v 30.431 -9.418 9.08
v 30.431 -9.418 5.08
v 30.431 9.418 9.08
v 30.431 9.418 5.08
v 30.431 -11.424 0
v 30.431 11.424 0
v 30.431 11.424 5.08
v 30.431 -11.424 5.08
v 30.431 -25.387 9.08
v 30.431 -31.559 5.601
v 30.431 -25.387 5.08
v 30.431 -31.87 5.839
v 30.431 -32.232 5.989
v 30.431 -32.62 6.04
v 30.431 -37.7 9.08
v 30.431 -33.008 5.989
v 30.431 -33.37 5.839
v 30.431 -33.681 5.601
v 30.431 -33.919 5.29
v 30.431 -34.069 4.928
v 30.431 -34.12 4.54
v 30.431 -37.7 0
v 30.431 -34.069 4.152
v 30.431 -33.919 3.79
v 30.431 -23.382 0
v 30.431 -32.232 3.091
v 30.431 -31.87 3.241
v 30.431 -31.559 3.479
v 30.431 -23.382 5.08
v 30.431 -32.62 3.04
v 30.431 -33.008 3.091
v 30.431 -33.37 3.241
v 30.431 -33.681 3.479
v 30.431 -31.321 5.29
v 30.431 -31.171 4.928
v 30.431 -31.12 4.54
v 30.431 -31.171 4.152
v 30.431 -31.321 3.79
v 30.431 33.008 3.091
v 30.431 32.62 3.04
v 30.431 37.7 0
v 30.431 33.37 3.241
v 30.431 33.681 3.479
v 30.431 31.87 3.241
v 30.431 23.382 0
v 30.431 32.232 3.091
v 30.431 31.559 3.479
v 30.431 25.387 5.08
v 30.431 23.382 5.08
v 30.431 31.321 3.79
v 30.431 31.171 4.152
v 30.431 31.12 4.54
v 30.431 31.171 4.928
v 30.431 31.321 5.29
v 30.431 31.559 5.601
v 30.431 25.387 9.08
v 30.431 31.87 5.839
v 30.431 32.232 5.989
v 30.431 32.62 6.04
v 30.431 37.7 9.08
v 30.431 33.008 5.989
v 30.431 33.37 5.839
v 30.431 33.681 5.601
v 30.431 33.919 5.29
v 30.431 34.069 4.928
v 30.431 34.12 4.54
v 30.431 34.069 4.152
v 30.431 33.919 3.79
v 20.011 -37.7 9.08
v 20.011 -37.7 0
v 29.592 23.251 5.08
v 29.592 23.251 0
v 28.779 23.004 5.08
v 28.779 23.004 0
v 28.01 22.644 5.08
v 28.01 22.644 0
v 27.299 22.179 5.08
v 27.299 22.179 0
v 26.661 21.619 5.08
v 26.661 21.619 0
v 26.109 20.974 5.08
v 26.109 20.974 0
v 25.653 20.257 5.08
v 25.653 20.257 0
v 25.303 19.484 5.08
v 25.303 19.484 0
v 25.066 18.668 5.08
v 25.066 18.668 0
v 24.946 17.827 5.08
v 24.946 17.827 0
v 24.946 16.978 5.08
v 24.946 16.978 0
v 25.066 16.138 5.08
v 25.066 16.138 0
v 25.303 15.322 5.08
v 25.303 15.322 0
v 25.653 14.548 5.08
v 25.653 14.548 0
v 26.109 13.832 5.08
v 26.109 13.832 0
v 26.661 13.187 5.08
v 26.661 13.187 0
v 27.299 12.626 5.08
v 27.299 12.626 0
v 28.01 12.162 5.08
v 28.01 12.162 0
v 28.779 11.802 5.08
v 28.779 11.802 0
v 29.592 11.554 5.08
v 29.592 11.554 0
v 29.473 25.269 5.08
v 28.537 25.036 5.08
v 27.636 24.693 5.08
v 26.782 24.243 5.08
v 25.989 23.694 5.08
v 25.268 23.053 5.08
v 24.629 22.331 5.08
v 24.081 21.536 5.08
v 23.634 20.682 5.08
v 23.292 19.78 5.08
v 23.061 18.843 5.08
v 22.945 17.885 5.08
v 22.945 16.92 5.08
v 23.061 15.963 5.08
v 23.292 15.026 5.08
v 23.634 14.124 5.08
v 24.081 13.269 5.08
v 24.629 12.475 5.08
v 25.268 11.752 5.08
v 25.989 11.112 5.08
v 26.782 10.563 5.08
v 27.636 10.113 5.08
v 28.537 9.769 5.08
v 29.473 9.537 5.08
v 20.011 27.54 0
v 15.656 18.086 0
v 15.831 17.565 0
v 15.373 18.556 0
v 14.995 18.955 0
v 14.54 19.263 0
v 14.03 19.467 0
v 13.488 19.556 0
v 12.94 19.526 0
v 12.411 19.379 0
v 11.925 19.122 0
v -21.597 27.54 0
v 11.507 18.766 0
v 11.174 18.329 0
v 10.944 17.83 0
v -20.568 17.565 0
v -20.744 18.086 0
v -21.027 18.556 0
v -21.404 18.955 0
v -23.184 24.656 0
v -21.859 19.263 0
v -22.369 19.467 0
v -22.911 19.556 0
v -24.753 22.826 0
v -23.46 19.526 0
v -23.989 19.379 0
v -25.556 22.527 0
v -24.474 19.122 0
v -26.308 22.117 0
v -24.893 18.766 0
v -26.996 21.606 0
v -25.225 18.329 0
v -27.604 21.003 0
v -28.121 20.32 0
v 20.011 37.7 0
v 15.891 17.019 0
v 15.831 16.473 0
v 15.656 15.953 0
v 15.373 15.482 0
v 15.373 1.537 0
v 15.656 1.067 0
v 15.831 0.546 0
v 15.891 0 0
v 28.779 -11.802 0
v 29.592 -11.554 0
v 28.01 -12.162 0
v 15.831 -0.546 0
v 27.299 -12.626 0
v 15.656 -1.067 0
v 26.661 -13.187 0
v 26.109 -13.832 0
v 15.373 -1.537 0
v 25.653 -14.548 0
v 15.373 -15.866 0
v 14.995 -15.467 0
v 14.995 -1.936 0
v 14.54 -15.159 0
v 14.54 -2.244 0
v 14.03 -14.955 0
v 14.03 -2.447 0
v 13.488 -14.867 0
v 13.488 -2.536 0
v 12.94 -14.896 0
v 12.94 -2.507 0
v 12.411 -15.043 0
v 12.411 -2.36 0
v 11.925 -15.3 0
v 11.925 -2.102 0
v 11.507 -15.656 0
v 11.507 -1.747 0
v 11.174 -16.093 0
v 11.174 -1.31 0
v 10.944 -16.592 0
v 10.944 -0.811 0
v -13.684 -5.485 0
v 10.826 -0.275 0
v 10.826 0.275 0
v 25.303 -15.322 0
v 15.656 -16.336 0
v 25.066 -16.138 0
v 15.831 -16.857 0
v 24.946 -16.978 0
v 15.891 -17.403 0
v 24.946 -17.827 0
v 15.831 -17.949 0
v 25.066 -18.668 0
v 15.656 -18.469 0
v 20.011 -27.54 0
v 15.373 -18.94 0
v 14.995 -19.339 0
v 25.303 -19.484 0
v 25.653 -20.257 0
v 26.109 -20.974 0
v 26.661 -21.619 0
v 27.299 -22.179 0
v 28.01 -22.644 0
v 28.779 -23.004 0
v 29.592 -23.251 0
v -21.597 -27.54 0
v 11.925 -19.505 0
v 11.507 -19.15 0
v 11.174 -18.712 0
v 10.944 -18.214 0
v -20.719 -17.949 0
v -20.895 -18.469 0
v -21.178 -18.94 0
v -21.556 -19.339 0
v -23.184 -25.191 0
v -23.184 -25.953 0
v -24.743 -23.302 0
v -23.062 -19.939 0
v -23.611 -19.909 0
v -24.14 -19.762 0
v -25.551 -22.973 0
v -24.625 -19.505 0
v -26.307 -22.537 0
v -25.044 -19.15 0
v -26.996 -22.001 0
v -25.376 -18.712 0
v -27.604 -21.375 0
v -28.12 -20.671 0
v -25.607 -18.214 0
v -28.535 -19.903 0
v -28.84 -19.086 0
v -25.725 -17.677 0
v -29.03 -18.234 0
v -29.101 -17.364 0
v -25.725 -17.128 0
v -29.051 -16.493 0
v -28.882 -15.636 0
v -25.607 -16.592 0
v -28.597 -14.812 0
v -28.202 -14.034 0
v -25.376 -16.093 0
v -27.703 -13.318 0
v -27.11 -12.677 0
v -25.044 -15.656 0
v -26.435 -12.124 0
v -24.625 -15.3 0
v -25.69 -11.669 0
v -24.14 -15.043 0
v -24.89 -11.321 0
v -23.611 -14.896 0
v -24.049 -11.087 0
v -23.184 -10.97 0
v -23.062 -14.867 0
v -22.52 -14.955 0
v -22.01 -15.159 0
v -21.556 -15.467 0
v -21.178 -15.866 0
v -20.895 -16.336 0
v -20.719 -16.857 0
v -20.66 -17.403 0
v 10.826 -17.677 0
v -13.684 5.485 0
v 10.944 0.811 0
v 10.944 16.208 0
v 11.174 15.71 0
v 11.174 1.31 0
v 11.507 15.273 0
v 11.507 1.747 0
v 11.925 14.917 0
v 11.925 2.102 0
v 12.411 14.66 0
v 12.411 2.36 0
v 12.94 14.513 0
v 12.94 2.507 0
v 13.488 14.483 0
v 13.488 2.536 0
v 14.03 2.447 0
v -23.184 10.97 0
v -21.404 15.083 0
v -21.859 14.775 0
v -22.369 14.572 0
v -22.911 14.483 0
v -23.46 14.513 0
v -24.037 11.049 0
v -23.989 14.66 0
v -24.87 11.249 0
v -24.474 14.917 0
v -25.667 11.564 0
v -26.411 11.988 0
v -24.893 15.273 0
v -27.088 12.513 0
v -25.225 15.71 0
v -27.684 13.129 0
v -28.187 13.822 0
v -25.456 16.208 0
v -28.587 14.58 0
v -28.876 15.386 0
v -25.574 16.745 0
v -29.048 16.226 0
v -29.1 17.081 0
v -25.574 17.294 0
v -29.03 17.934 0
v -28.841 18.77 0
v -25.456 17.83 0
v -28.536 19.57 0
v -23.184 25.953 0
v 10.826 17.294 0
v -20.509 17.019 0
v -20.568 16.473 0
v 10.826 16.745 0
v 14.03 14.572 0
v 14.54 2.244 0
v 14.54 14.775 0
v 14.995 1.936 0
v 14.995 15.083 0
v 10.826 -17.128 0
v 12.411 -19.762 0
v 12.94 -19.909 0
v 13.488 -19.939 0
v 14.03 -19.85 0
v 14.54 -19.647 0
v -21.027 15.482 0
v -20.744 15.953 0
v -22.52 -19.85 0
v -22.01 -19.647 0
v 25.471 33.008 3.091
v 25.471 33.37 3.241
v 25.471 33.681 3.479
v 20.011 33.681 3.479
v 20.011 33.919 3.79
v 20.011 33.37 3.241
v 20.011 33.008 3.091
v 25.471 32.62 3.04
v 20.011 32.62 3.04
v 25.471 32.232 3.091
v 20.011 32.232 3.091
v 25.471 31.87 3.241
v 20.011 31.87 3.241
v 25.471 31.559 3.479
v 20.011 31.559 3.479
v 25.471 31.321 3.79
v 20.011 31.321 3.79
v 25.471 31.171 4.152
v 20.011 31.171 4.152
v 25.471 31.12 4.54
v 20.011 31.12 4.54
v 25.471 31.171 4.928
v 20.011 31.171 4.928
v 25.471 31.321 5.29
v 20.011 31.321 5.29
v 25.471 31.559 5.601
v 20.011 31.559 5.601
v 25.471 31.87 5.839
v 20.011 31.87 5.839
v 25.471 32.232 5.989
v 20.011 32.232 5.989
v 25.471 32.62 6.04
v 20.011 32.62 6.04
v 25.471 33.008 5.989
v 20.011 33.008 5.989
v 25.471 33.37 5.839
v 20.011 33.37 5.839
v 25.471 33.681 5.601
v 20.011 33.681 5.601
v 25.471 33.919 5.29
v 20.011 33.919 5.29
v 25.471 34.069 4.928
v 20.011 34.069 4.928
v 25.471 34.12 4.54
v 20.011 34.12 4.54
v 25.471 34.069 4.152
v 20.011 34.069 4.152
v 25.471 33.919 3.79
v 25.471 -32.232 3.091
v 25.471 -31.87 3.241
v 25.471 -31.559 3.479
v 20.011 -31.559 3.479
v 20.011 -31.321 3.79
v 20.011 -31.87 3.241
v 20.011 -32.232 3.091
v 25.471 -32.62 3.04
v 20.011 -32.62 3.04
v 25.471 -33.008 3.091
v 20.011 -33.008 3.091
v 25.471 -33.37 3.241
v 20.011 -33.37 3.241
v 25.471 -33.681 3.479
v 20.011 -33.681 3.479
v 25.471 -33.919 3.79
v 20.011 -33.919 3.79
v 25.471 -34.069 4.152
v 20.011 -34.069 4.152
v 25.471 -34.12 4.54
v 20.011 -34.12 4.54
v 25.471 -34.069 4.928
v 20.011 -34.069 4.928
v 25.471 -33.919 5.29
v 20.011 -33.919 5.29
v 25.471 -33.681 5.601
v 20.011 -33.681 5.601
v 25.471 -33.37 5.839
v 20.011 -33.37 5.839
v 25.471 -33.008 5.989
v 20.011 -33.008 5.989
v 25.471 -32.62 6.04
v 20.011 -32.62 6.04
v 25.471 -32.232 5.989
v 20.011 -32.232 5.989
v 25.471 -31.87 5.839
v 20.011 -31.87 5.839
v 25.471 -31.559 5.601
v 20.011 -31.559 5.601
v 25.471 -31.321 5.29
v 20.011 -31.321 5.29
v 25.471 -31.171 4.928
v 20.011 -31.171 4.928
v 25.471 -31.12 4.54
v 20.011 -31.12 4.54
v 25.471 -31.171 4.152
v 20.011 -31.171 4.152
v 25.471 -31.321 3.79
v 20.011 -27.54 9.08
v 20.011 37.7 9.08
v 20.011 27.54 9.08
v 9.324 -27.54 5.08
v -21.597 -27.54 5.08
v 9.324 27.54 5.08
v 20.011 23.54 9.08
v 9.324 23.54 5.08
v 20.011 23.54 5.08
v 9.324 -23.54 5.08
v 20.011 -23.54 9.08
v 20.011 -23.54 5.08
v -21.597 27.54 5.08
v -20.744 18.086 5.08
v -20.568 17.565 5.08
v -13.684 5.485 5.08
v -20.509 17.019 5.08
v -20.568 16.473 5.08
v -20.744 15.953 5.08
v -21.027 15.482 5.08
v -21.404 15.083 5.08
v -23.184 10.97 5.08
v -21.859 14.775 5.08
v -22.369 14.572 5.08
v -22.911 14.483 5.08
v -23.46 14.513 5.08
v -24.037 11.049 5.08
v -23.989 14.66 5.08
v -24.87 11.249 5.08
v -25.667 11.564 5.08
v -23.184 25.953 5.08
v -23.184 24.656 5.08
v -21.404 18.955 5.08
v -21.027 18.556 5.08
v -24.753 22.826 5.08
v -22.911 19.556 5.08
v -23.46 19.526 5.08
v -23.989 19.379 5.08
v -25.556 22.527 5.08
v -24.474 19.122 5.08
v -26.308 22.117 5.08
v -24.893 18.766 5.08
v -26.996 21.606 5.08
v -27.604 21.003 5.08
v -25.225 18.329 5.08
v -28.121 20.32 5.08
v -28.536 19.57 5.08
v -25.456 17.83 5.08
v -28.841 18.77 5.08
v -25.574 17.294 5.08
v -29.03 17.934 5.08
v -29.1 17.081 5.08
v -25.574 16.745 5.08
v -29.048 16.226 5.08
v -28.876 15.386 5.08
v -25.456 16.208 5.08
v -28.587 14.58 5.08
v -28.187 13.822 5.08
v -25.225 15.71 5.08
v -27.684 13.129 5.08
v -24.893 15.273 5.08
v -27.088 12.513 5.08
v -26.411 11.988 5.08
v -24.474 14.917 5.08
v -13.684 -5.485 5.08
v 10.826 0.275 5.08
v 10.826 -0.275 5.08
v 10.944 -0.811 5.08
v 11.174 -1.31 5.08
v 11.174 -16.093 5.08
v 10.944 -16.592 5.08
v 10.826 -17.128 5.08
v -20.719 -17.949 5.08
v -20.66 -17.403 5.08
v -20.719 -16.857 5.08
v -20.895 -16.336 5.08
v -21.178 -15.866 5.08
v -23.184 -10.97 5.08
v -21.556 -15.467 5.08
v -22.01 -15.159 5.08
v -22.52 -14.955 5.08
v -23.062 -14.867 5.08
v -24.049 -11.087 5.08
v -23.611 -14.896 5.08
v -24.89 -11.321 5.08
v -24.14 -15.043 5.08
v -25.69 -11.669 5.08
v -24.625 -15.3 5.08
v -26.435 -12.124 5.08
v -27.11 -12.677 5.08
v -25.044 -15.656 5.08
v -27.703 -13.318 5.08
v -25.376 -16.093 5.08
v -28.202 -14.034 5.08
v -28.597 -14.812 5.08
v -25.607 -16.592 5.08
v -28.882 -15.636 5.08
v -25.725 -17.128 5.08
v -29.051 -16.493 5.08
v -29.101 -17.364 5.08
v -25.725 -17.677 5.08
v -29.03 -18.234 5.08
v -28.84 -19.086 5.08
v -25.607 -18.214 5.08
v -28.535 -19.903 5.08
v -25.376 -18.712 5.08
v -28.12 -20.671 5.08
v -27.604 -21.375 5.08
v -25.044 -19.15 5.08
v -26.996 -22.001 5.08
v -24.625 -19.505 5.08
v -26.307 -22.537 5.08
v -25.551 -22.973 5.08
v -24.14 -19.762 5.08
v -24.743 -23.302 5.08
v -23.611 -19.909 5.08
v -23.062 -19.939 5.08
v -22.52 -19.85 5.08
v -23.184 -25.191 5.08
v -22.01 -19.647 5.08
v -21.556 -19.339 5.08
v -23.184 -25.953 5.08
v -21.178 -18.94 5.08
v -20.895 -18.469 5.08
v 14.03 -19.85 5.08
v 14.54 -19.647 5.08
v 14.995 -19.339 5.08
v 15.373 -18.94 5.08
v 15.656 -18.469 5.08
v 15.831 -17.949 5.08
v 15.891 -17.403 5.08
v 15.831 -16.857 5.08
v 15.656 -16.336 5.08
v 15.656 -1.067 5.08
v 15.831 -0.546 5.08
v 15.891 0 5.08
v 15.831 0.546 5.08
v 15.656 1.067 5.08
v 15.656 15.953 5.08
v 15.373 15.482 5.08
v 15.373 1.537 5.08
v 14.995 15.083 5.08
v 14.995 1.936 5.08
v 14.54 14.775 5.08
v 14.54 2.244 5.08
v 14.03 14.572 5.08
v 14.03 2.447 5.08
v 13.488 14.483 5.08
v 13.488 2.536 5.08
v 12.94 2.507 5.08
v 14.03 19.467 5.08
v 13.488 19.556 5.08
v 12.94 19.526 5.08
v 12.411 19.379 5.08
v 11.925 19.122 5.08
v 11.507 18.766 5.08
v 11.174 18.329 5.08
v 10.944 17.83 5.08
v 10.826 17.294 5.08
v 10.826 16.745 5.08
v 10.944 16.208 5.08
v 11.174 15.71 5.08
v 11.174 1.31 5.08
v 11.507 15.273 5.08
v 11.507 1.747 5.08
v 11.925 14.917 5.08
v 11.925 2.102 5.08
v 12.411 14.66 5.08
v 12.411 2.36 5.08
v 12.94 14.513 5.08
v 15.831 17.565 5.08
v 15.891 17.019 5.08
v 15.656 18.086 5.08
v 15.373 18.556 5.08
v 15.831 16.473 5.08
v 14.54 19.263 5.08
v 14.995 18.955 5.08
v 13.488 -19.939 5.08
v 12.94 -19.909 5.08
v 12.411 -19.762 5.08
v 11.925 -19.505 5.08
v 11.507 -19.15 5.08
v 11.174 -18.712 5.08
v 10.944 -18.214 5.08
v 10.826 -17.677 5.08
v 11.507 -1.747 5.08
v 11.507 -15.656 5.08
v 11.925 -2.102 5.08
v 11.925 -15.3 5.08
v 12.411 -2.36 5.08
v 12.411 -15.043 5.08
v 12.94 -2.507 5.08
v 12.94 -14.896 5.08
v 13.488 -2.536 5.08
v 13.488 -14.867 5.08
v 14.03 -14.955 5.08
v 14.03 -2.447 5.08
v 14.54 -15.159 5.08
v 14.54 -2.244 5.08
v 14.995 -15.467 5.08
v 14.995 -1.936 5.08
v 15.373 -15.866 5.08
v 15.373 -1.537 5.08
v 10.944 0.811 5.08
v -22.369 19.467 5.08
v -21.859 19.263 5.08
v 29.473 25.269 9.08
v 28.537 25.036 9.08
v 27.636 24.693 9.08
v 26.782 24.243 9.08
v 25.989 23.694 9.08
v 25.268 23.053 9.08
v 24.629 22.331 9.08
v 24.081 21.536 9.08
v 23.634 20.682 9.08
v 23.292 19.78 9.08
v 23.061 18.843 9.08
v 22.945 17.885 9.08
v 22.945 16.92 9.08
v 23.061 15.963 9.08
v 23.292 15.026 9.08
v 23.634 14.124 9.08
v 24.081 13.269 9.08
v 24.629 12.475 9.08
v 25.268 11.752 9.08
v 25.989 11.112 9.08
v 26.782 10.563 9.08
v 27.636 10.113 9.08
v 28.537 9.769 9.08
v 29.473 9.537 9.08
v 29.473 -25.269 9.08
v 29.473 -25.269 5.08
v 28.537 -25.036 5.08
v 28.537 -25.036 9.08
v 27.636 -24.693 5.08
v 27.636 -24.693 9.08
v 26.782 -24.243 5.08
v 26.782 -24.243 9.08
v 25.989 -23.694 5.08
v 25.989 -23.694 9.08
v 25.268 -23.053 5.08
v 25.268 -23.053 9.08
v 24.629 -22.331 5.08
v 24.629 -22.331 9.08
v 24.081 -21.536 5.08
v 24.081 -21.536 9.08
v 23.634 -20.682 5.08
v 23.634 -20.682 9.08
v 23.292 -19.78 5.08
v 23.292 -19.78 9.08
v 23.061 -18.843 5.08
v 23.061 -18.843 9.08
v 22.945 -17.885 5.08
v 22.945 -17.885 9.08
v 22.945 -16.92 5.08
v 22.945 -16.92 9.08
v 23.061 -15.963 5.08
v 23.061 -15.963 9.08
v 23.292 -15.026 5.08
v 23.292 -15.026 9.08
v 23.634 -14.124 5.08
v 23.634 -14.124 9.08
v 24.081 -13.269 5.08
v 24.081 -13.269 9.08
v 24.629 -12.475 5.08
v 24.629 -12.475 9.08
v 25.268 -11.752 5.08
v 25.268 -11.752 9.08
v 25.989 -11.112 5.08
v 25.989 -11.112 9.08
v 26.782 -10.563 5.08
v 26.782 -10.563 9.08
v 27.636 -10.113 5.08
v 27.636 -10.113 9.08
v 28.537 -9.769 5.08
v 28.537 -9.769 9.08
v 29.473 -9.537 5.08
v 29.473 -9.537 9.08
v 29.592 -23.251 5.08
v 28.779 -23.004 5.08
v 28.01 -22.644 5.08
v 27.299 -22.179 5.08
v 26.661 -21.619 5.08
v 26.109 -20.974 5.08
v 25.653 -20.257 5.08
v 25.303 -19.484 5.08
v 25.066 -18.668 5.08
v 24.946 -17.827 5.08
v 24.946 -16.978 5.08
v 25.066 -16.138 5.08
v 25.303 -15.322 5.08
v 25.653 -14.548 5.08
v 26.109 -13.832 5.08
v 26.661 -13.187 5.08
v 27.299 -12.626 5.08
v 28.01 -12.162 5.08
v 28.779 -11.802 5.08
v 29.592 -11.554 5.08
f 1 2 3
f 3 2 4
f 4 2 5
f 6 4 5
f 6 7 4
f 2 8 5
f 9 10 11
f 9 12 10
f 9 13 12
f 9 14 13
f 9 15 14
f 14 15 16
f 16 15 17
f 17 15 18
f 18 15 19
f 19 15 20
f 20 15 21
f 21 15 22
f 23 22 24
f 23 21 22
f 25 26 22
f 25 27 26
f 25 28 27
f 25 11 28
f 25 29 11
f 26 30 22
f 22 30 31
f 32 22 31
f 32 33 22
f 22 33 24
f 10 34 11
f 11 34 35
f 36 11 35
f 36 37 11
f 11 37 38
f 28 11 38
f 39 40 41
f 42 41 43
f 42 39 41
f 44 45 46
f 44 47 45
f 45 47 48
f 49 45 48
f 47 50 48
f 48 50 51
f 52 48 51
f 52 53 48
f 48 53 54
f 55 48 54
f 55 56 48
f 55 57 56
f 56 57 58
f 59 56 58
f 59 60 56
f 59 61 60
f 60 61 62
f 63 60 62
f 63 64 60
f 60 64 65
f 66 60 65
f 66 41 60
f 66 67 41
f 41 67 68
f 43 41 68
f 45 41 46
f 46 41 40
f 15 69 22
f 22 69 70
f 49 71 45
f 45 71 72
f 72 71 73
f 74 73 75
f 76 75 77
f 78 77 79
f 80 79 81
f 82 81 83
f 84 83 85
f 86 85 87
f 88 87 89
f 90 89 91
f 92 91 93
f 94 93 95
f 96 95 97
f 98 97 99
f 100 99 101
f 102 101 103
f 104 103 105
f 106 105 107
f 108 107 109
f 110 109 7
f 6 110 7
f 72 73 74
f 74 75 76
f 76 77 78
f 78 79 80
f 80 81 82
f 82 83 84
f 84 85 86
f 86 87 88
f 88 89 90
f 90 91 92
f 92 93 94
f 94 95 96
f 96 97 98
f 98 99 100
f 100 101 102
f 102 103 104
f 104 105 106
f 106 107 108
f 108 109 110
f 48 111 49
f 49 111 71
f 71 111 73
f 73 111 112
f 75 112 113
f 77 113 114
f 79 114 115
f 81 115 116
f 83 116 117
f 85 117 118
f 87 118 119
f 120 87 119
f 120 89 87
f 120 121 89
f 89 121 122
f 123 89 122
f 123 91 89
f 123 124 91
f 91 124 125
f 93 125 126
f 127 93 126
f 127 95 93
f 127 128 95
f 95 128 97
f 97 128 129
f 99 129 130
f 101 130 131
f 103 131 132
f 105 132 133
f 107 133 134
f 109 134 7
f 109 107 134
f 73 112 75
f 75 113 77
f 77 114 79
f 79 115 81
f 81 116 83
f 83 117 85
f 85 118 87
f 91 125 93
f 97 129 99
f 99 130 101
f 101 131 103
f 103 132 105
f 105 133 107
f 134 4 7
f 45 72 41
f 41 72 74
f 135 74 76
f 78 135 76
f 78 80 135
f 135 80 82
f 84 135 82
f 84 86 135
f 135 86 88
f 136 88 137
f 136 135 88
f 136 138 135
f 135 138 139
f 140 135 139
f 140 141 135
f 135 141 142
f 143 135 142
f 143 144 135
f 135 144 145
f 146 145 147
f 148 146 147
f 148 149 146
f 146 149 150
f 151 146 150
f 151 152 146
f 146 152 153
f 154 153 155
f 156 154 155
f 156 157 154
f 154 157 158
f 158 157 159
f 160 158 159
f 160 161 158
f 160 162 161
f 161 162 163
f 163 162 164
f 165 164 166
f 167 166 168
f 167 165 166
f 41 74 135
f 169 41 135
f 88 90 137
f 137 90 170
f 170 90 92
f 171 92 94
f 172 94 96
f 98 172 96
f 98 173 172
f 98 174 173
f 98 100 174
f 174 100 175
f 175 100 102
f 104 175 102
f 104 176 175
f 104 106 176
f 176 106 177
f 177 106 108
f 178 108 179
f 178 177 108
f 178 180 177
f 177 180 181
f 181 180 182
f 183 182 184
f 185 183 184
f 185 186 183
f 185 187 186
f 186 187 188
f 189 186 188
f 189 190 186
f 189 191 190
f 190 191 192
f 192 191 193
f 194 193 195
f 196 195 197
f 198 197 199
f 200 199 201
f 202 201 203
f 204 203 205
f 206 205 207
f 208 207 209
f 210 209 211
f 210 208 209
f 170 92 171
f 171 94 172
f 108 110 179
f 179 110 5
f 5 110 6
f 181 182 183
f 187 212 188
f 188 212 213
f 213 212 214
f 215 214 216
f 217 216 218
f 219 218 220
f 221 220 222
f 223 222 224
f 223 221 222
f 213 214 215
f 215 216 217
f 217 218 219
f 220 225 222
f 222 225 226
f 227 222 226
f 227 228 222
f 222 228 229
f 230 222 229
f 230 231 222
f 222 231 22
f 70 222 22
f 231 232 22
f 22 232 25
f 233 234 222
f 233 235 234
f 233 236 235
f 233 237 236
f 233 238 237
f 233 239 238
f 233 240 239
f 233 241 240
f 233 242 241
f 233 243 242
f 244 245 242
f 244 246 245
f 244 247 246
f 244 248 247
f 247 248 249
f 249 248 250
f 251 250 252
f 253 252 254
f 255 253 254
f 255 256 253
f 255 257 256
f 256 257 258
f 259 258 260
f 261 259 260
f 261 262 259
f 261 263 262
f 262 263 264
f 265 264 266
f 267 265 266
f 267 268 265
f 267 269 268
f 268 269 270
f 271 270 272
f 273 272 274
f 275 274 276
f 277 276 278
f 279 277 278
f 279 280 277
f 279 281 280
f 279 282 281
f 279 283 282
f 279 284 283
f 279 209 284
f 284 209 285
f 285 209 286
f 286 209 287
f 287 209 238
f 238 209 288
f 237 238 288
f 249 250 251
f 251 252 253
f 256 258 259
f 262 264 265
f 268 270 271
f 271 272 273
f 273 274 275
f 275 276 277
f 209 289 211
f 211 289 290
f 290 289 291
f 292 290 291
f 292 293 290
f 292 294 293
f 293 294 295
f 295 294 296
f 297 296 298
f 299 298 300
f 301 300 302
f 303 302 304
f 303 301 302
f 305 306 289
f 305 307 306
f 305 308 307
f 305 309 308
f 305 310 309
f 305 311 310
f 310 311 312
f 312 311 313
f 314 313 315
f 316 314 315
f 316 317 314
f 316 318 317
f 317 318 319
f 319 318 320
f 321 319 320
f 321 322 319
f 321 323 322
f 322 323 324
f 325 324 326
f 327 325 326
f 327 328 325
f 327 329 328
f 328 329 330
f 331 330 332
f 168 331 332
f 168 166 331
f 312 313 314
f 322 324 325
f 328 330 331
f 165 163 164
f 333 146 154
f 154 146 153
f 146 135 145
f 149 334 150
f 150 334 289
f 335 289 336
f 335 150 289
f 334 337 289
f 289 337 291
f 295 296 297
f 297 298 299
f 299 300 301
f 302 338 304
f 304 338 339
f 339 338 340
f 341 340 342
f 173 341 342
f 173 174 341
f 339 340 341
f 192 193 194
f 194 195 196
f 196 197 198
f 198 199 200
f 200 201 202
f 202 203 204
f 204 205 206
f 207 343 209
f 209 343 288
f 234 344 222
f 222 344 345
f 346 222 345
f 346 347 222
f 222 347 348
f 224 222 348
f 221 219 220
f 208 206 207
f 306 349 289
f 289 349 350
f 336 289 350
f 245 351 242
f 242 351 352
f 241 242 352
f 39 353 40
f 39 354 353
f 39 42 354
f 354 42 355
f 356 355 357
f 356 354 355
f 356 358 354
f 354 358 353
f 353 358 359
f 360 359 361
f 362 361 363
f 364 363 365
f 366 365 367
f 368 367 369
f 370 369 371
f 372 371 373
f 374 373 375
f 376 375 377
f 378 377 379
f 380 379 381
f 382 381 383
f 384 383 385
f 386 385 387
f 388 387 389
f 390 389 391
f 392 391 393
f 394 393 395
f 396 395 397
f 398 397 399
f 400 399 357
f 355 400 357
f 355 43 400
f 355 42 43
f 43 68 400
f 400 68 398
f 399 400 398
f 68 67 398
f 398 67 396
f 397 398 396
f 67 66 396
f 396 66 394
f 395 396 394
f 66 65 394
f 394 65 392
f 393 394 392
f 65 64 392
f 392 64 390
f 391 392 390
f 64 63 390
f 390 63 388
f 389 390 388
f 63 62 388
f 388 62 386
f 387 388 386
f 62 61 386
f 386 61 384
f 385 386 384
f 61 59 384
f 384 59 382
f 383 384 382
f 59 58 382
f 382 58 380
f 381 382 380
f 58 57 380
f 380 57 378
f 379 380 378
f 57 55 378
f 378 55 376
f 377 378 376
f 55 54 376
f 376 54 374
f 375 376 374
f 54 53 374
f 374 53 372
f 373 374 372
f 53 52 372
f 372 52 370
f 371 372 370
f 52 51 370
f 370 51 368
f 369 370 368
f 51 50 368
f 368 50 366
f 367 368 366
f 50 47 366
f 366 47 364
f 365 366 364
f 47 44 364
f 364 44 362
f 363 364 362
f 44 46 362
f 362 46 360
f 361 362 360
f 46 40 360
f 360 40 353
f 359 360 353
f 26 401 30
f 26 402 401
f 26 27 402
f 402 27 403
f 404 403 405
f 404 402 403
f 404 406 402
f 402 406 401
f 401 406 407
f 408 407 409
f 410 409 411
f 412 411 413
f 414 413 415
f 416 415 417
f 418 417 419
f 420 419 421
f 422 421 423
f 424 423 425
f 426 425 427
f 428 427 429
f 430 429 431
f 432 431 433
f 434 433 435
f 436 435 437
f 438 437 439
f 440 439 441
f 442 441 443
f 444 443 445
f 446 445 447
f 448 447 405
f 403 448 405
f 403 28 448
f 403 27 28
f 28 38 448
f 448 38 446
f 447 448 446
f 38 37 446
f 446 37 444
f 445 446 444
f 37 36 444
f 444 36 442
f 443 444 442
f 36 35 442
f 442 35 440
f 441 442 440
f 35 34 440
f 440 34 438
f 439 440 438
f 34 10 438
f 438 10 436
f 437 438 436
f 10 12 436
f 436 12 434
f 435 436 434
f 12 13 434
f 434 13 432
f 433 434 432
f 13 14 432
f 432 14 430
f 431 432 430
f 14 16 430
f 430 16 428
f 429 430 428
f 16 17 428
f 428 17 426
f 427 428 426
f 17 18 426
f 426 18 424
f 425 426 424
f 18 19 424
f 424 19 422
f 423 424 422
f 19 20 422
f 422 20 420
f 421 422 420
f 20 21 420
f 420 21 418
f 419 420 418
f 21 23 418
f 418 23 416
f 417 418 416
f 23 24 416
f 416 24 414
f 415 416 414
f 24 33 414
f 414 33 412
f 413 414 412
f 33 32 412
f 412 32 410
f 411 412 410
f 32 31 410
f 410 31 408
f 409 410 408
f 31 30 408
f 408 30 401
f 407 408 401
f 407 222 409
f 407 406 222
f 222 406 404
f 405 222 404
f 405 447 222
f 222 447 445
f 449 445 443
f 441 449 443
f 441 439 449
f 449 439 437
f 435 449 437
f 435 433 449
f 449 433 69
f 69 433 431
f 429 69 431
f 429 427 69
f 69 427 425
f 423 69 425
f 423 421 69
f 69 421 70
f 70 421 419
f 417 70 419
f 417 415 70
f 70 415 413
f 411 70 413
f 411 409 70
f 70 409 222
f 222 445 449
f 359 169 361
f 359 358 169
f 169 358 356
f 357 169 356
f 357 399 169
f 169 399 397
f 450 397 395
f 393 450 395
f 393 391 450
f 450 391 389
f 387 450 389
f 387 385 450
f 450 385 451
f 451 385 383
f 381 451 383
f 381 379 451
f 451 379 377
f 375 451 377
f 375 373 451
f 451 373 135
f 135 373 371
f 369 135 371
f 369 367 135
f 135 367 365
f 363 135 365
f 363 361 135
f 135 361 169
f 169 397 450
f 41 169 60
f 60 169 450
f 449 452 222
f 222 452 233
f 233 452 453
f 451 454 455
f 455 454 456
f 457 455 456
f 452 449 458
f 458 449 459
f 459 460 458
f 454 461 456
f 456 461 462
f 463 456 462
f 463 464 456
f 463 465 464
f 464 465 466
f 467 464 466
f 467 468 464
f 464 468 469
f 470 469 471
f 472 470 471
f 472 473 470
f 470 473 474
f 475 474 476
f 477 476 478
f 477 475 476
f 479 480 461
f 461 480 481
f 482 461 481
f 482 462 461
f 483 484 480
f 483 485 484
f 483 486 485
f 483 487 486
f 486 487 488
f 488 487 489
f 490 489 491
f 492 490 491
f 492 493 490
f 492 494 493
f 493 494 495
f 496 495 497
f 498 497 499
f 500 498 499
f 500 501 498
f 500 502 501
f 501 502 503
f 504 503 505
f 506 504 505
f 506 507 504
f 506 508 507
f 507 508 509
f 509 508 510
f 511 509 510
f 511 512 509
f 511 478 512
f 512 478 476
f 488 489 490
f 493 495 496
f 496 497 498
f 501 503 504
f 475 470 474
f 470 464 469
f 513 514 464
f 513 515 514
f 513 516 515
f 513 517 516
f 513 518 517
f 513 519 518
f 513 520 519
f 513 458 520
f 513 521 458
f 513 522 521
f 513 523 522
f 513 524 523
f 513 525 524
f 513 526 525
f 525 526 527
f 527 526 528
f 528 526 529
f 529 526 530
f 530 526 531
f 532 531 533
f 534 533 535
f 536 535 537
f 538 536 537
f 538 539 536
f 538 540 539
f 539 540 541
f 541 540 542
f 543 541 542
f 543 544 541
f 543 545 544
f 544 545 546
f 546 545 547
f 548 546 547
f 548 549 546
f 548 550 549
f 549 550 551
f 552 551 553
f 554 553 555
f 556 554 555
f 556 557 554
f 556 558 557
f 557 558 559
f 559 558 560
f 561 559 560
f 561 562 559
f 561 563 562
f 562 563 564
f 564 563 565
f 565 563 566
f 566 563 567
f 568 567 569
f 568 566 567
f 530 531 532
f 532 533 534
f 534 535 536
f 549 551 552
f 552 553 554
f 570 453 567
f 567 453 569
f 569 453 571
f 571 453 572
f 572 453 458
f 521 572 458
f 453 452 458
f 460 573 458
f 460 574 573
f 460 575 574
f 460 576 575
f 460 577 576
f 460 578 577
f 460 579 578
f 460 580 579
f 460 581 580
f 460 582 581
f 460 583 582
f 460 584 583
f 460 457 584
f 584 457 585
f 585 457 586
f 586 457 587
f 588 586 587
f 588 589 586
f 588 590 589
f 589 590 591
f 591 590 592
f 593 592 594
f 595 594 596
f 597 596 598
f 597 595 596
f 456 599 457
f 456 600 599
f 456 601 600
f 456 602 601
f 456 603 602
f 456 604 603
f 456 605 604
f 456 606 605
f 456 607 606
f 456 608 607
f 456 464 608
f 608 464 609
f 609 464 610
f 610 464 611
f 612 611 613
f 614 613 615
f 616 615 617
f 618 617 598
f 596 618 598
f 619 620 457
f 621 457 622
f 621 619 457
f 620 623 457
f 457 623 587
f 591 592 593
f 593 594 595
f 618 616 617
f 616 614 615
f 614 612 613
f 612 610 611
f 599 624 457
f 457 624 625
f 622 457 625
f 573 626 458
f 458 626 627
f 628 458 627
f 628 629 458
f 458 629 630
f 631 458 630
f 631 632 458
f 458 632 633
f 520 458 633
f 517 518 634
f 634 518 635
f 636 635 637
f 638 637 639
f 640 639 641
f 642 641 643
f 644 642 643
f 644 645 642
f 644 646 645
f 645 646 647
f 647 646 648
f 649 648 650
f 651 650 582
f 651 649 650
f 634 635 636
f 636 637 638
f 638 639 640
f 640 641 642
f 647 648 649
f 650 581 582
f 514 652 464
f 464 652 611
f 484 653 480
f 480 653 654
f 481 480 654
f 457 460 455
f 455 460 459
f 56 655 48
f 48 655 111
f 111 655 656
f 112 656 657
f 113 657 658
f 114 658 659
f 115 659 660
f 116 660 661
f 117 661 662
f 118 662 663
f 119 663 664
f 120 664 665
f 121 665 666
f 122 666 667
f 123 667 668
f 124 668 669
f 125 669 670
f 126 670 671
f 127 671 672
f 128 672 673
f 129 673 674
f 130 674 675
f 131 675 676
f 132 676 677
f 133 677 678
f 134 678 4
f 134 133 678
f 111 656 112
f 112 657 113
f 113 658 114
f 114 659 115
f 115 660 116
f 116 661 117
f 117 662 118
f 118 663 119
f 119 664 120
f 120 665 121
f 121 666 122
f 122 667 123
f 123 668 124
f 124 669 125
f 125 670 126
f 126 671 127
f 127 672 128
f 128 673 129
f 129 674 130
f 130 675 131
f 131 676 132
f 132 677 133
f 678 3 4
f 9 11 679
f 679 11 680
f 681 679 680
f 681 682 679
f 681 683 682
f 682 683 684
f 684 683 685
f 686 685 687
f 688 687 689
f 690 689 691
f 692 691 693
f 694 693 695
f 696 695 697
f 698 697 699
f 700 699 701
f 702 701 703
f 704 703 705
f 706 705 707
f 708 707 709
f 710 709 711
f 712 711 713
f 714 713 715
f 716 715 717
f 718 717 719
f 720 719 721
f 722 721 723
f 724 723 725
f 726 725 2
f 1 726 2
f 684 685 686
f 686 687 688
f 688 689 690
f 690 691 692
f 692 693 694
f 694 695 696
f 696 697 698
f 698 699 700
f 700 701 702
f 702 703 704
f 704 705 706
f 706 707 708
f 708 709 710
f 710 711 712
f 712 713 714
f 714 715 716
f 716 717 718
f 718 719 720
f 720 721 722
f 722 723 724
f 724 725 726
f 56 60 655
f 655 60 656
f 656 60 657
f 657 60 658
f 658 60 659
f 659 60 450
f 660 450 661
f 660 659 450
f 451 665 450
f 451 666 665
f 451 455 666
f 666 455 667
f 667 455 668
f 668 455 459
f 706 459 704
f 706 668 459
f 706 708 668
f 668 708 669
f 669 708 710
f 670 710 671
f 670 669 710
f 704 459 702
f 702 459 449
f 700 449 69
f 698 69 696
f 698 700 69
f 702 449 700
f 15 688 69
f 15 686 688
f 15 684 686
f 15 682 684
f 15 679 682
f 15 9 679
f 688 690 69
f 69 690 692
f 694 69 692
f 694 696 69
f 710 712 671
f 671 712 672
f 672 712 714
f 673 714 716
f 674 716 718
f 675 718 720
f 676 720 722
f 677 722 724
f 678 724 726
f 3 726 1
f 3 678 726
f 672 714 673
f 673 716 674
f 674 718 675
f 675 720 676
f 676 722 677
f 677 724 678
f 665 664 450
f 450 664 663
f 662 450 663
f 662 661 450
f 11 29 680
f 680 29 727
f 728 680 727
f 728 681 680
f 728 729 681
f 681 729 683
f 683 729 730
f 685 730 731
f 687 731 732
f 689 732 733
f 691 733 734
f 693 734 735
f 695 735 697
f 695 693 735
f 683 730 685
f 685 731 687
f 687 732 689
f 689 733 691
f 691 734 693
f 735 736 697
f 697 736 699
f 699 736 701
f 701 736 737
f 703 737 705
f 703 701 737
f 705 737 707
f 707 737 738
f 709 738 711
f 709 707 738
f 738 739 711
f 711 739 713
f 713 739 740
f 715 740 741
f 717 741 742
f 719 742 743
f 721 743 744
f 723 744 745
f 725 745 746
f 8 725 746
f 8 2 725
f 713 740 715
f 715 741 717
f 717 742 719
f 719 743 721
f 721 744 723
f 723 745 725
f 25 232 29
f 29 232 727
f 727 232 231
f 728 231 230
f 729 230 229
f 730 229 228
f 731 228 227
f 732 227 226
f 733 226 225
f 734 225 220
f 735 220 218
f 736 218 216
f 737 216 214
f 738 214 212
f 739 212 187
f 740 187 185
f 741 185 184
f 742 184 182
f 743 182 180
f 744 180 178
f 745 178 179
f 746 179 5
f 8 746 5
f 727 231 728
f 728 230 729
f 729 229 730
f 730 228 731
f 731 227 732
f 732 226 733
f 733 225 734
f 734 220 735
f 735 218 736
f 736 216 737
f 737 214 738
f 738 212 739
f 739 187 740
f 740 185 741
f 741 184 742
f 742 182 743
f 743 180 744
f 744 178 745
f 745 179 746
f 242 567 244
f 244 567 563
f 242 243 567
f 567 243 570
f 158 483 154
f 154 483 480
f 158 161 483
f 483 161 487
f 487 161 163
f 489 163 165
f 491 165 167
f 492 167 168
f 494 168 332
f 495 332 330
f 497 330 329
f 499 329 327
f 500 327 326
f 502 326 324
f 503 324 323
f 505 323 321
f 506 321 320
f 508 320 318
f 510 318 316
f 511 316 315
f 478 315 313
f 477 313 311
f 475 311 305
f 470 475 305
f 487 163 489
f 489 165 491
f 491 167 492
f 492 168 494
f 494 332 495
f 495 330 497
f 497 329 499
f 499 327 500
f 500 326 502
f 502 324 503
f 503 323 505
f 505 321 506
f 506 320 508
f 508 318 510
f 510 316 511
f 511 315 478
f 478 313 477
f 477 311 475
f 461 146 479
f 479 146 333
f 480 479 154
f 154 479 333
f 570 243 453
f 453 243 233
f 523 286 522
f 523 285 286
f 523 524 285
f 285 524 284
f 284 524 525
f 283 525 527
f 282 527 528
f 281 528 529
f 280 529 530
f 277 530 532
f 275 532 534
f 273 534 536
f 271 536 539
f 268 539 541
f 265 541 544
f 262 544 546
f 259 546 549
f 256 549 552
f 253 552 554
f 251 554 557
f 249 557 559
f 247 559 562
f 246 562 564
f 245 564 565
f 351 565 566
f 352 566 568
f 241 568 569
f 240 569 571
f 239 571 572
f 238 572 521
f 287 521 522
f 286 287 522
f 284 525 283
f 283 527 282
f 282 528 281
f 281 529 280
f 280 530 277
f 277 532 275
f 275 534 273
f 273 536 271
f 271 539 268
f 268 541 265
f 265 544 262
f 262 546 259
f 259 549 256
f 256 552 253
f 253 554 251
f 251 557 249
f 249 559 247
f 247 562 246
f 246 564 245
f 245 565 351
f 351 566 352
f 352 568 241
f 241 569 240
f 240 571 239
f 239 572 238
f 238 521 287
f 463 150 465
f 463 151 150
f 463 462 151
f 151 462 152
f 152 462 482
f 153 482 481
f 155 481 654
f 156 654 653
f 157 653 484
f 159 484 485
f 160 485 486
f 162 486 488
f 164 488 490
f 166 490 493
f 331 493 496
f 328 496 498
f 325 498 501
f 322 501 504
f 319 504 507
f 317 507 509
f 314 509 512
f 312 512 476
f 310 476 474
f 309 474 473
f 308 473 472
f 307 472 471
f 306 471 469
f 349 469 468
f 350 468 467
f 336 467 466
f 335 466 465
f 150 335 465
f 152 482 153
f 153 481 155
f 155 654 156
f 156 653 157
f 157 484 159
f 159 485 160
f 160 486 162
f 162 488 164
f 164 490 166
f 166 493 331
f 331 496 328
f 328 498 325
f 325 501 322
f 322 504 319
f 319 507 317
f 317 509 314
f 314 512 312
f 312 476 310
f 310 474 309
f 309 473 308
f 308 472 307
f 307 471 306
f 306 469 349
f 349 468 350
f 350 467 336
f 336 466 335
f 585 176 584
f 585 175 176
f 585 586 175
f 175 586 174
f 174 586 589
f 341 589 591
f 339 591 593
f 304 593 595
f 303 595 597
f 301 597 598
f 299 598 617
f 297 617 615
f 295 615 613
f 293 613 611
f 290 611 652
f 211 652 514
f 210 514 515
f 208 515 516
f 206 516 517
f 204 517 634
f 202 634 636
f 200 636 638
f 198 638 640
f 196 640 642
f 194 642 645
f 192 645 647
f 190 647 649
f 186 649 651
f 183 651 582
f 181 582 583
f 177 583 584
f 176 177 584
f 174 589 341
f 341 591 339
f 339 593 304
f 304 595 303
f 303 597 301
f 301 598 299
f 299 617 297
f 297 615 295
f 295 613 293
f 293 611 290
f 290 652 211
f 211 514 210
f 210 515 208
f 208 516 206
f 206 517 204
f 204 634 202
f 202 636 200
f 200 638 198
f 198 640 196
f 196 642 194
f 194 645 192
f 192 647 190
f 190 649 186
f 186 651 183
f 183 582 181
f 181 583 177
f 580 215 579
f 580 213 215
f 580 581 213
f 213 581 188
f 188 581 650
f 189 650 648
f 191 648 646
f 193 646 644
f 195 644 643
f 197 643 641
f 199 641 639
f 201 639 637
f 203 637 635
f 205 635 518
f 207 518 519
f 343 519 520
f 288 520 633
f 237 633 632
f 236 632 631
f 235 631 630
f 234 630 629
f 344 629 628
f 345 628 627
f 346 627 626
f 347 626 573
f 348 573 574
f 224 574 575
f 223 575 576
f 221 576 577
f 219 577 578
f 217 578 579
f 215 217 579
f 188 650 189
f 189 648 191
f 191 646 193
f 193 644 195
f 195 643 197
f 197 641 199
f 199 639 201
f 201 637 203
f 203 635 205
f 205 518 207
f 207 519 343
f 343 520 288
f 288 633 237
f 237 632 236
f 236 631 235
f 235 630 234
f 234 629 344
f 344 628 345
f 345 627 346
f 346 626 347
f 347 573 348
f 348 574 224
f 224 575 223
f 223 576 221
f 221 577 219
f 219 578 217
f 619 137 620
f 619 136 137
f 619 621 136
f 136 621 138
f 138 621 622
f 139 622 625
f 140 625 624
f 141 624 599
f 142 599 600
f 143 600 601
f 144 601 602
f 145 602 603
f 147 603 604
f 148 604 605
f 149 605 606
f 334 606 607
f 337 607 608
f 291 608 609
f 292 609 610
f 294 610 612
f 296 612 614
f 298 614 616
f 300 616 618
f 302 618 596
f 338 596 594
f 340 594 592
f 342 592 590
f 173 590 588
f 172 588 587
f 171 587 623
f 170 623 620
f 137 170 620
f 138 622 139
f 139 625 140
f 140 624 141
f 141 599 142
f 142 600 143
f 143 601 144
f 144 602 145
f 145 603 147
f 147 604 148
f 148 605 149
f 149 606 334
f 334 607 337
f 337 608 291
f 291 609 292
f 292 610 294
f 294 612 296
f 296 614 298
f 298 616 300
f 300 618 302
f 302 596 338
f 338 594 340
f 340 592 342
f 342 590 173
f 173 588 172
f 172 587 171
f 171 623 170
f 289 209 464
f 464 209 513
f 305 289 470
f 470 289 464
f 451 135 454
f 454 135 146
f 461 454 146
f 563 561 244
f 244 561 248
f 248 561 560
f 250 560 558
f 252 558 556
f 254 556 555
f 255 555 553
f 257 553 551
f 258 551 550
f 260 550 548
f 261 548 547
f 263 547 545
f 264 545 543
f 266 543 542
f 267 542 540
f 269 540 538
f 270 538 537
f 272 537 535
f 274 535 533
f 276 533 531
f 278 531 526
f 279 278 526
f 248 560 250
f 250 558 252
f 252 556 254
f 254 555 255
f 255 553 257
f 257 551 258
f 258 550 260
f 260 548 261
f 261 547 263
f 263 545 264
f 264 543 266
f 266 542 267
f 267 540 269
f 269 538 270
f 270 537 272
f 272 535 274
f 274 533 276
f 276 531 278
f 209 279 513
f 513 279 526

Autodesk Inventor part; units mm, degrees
ref_plane "YZ Plane" through (0, 0, 0) normal (1, 0, 0) x (0, 1, 0)
ref_plane "XZ Plane" through (0, 0, 0) normal (0, 1, 0) x (-1, 0, 0)
sketch "Sketch1" plane through (0, 0, 0) normal (0, 0, 1) x (1, 0, 0)
  line L0 (-13.6843, -5.4848) -> (-23.1843, -10.9697) projected
  line L1 (-23.1843, -10.9697) -> (-32.6843, -5.4848) projected
  line L2 (-32.6843, -5.4848) -> (-32.6843, 5.4848) projected
  line L3 (-32.6843, 5.4848) -> (-23.1843, 10.9697) projected
  line L4 (-23.1843, 10.9697) -> (-13.6843, 5.4848) projected
  line L5 (-13.6843, 5.4848) -> (-13.6843, -5.4848) projected
  circle A0 centre (13.3507, 17.0193) radius 2.54 projected
  circle A1 centre (13.3507, -17.4028) radius 2.54 projected
  circle A2 centre (13.3507, 0) radius 2.54 projected
  circle A3 centre (-23.0489, 17.0193) radius 2.54 projected
  circle A4 centre (-23.2, -17.4028) radius 2.54 projected
  line L6 (-54.6393, -27.54) -> (18.4307, -27.54) projected
  line L7 (18.4307, -27.54) -> (18.4307, 27.54) projected
  line L8 (-54.6393, 27.54) -> (18.4307, 27.54) projected
  line L9 (-54.6393, -27.54) -> (-54.6393, 27.54) projected
  arc A5 (-23.1843, 23.0689) -> (-23.1843, 10.9697) centre (-23.0489, 17.0193) ccw
  line L10 (-23.1843, 10.9697) -> (-13.6843, 5.4848)
  line L11 (-13.6843, 5.4848) -> (-13.6843, -5.4848)
  line L12 (-13.6843, -5.4848) -> (-23.1843, -10.9697)
  line L13 (-23.1843, -23.6032) -> (-23.1843, -27.54)
  line L14 (-23.1843, 23.0689) -> (-23.1843, 27.54)
  line L15 (-23.1843, -27.54) -> (18.4307, -27.54)
  line L16 (18.4307, -27.54) -> (18.4307, 27.54)
  line L17 (18.4307, 27.54) -> (-23.1843, 27.54)
  arc A6 (-23.1843, -10.9697) -> (-23.1843, -23.6032) centre (-22.7708, -17.2864) ccw
  point P0 (0, 0)
extrude "Extrusion1" add sketch "Sketch1" along normal blind 5.08 contours L5 L4 A5 L14 L8 L7 L6 L13 A6 L0
chamfer "Chamfer1" distance 1.5875 angle 45 4 edges at (-23.1843, -27.54, 2.54) (-23.1843, 27.54, 2.54) (-23.1843, 23.0689, 2.54) (-23.1843, -23.6032, 2.54)
sketch "Sketch2" plane through (18.4307, -27.54, 0) normal (1, 0, 0) x (0, 0, -1)
  line L0 (25.4, 55.08) -> (25.4, 29.5535) projected
  line L1 (25.4, 29.5535) -> (38.1, 29.5535)
  point P0 (0, 27.54)
  dimension "d5" = 12.7
sketch "Sketch3" plane through (0, 0, 5.08) normal (0, 0, 1) x (1, 0, 0)
  line L0 (-23.1843, 25.9525) -> (-21.5968, 27.54) projected
  line L1 (-23.1843, 25.9525) -> (-23.1843, 24.6564) projected
  line L2 (-24.753, 22.8255) -> (-23.1843, 24.6564) projected
  arc A0 (-24.753, 22.8255) -> (-23.1843, 10.9697) centre (-23.0489, 17.0193) ccw projected
  line L3 (-23.1843, 10.9697) -> (-13.6843, 5.4848) projected
  line L4 (-13.6843, 5.4848) -> (-13.6843, -5.4848) projected
  line L5 (-13.6843, -5.4848) -> (-23.1843, -10.9697) projected
  arc A1 (-23.1843, -10.9697) -> (-24.7429, -23.3017) centre (-22.7708, -17.2864) ccw projected
  line L6 (-23.1843, -25.1907) -> (-24.7429, -23.3017) projected
  line L7 (-23.1843, -25.1907) -> (-23.1843, -25.9525) projected
  line L8 (-21.5968, -27.54) -> (-23.1843, -25.9525) projected
  line L9 (-21.5968, -27.54) -> (18.4307, -27.54) projected
  line L10 (18.4307, -27.54) -> (18.4307, 27.54) projected
  line L11 (18.4307, 27.54) -> (-21.5968, 27.54) projected
  circle A2 centre (-23.2, -17.4028) radius 2.54 projected
  circle A3 centre (-23.0489, 17.0193) radius 2.54 projected
  circle A4 centre (13.3507, 0) radius 2.54 projected
  circle A5 centre (13.3507, -17.4028) radius 2.54 projected
  circle A6 centre (13.3507, 17.0193) radius 2.54 projected
  line L12 (18.4307, -17.4028) -> (24.9307, -17.4028)
  line L13 (24.9307, -17.4028) -> (30.9307, -17.4028)
  arc A7 (30.9307, -11.4028) -> (30.9307, -23.4028) centre (30.9307, -17.4028) ccw
  line L14 (30.9307, -23.4028) -> (30.9307, -27.54)
  line L15 (30.9307, -27.54) -> (18.4307, -27.54)
  line L16 (18.4307, 0) -> (20.9229, 0)
  line L17 (18.4307, 17.4028) -> (24.9307, 17.4028)
  line L18 (24.9307, 17.4028) -> (30.9307, 17.4028)
  arc A8 (30.9307, 23.4028) -> (30.9307, 11.4028) centre (30.9307, 17.4028) ccw
  line L19 (30.9307, 23.4028) -> (30.9307, 27.54)
  line L20 (30.9307, 27.54) -> (18.4307, 27.54)
  line L21 (30.9307, -11.4028) -> (30.9307, 11.4028)
  point P0 (0, 0)
  dimension "d6" = 6.5
  dimension "d7" = 6
  dimension "d8" = 6
ref_plane "Work Plane1" through (-54.6393, -27.54, 0) normal (0, 0, 1) x (1, 0, 0)
extrude "Extrusion2" add sketch "Sketch3" against normal up to surface (5.08 mm away) contours L20 L19 A8 L17 L10 | L17 A8 L21 A7 L12 L10 | L12 A7 L14 L15 L10
sketch "Sketch4" plane through (0, 0, 5.08) normal (0, 0, 1) x (1, 0, 0)
  line L0 (-23.1843, 25.9525) -> (-21.5968, 27.54) projected
  line L1 (-23.1843, 25.9525) -> (-23.1843, 24.6564) projected
  line L2 (-24.753, 22.8255) -> (-23.1843, 24.6564) projected
  arc A0 (-24.753, 22.8255) -> (-23.1843, 10.9697) centre (-23.0489, 17.0193) ccw projected
  line L3 (-23.1843, 10.9697) -> (-13.6843, 5.4848) projected
  line L4 (-13.6843, 5.4848) -> (-13.6843, -5.4848) projected
  line L5 (-13.6843, -5.4848) -> (-23.1843, -10.9697) projected
  arc A1 (-23.1843, -10.9697) -> (-24.7429, -23.3017) centre (-22.7708, -17.2864) ccw projected
  line L6 (-23.1843, -25.1907) -> (-24.7429, -23.3017) projected
  line L7 (-23.1843, -25.1907) -> (-23.1843, -25.9525) projected
  line L8 (-21.5968, -27.54) -> (-23.1843, -25.9525) projected
  line L9 (-21.5968, -27.54) -> (30.9307, -27.54) projected
  line L10 (30.9307, -27.54) -> (30.9307, -23.4028) projected
  arc A2 (30.9307, -11.4028) -> (30.9307, -23.4028) centre (30.9307, -17.4028) ccw projected
  line L11 (30.9307, -11.4028) -> (30.9307, 11.4028) projected
  arc A3 (30.9307, 23.4028) -> (30.9307, 11.4028) centre (30.9307, 17.4028) ccw projected
  line L12 (30.9307, 23.4028) -> (30.9307, 27.54) projected
  line L13 (30.9307, 27.54) -> (-21.5968, 27.54) projected
  circle A4 centre (-23.2, -17.4028) radius 2.54 projected
  circle A5 centre (-23.0489, 17.0193) radius 2.54 projected
  circle A6 centre (13.3507, 0) radius 2.54 projected
  circle A7 centre (13.3507, -17.4028) radius 2.54 projected
  circle A8 centre (13.3507, 17.0193) radius 2.54 projected
  line L14 (30.9307, -23.4028) -> (30.9307, -27.54) projected
  arc A9 (30.9307, -9.4028) -> (30.9307, -25.4028) centre (30.9307, -17.4028) ccw
  arc A10 (30.9307, 23.4028) -> (30.9307, 11.4028) centre (30.9307, 17.4028) ccw projected
  line L15 (30.9307, -11.4028) -> (30.9307, 11.4028) projected
  arc A11 (30.9307, 25.4028) -> (30.9307, 9.4028) centre (30.9307, 17.4028) ccw
  line L16 (-21.5968, -27.54) -> (30.9307, -27.54) projected
  line L17 (20.0107, -27.54) -> (20.0107, 27.54)
  line L18 (30.9307, 27.54) -> (-21.5968, 27.54) projected
  line L19 (20.0107, -26.7462) -> (20.0107, -27.54)
  line L20 (-21.5968, -27.54) -> (30.9307, -27.54) projected
  line L21 (20.0107, -27.54) -> (30.9307, -27.54)
  line L22 (30.9307, -27.54) -> (30.9307, -23.4028) projected
  line L23 (30.9307, -25.4028) -> (30.9307, -27.54)
  line L24 (30.9307, -9.4028) -> (30.9307, 9.4028)
  line L25 (20.0107, 27.54) -> (30.9307, 27.54)
  line L26 (30.9307, 27.54) -> (30.9307, 25.4028)
  line L27 (30.9307, 23.4028) -> (30.9307, 27.54) projected
  point P0 (0, 0)
  dimension "d11" = 8
  dimension "d12" = 8
extrude "Extrusion3" add sketch "Sketch4" along normal blind 4 contours L13 L12 A11 L11 A9 L10 L9 L17
sketch "Sketch5" plane through (-21.5968, -27.54, 0) normal (0, -1, 0) x (1, 0, 0)
  point P0 (21.5968, 0)
sketch "Sketch6" plane through (-21.5968, -27.54, 0) normal (0, -1, 0) x (1, 0, 0)
  line L0 (0, 0) -> (0, 5.08) projected
  line L1 (0, 0) -> (52.5275, 0) projected
  line L2 (52.5275, 0) -> (52.5275, 9.08) projected
  line L3 (41.6075, 9.08) -> (52.5275, 9.08) projected
  line L4 (41.6075, 5.08) -> (41.6075, 9.08) projected
  line L5 (0, 5.08) -> (41.6075, 5.08) projected
  line L6 (41.6075, 5.08) -> (41.6075, 9.08) projected
  line L7 (41.6075, 9.08) -> (30.9206, 5.08)
  line L8 (0, 5.08) -> (41.6075, 5.08) projected
  point P0 (21.5968, 0)
extrude "Extrusion4" add sketch "Sketch6" against normal blind 4 contours L7 L4 L5
sketch "Sketch7" plane through (-21.5968, 27.54, 5.08) normal (0, 1, 0) x (1, 0, 0)
  line L0 (41.6075, 0) -> (41.6075, -4) projected
  line L1 (30.9206, 0) -> (41.6075, 0) projected
  line L2 (30.9206, 0) -> (41.6075, -4) projected
  point P0 (21.5968, 5.08)
extrude "Extrusion5" add sketch "Sketch7" against normal blind 4
sketch "Sketch8" plane through (0, 0, 9.08) normal (0, 0, 1) x (1, 0, 0)
  line L0 (30.9307, -27.54) -> (30.9307, -25.4028) projected
  arc A0 (30.9307, -9.4028) -> (30.9307, -25.4028) centre (30.9307, -17.4028) ccw projected
  line L1 (30.9307, -9.4028) -> (30.9307, 9.4028) projected
  arc A1 (30.9307, 25.4028) -> (30.9307, 9.4028) centre (30.9307, 17.4028) ccw projected
  line L2 (30.9307, 25.4028) -> (30.9307, 27.54) projected
  line L3 (30.9307, 27.54) -> (20.0107, 27.54) projected
  line L4 (20.0107, 27.54) -> (20.0107, 23.54) projected
  line L5 (20.0107, 23.54) -> (20.0107, -23.54) projected
  line L6 (20.0107, -23.54) -> (20.0107, -27.54) projected
  line L7 (20.0107, -27.54) -> (30.9307, -27.54) projected
  line L8 (20.0107, 27.54) -> (30.9307, 27.54)
  line L9 (30.9307, 27.54) -> (30.9307, 37.7)
  line L10 (30.9307, 37.7) -> (20.0107, 37.7)
  line L11 (20.0107, 37.7) -> (20.0107, 27.54)
  line L12 (20.0107, -27.54) -> (30.9307, -27.54) projected
  line L13 (20.0107, -27.54) -> (30.9307, -27.54)
  line L14 (30.9307, -27.54) -> (30.9307, -37.7)
  line L15 (30.9307, -37.7) -> (20.0107, -37.7)
  line L16 (20.0107, -37.7) -> (20.0107, -27.54)
  point P0 (0, 0)
  dimension "d19" = 10.16
  dimension "d20" = 10.16
extrude "Extrusion6" add sketch "Sketch8" against normal up to surface (9.08 mm away) contours L14 L15 L16 L7 | L11 L10 L9 L3
sketch "Sketch9" plane through (30.9307, -23.4028, 5.08) normal (1, 0, 0) x (0, 0, -1)
  line L0 (5.08, 50.9428) -> (5.08, 61.1028) projected
  line L1 (-4, 50.9428) -> (5.08, 50.9428) projected
  line L2 (-4, 61.1028) -> (-4, 50.9428) projected
  line L3 (-4, 61.1028) -> (5.08, 61.1028) projected
  line L4 (5.08, -14.2972) -> (5.08, -4.1372) projected
  line L5 (-4, -14.2972) -> (5.08, -14.2972) projected
  line L6 (-4, -4.1372) -> (-4, -14.2972) projected
  line L7 (5.08, -4.1372) -> (-4, -4.1372) projected
  circle A0 centre (0.54, -9.2172) radius 1.5
  circle A1 centre (0.54, 56.0228) radius 1.5
  point P0 (5.08, 23.4028)
  dimension "d23" = 3
  dimension "d24" = 3
extrude "Extrusion7" cut sketch "Sketch9" against normal blind 18.2875 contours A0 | A1
sketch "Sketch10" plane through (30.9307, -11.4028, 0) normal (1, 0, 0) x (0, 0, -1)
  line L0 (-12.4469, -33.6461) -> (5.8759, -33.6461)
  line L1 (5.8759, -33.6461) -> (5.8759, 55.3145)
  line L2 (5.8759, 55.3145) -> (-12.4469, 55.3145)
  line L3 (-12.4469, 55.3145) -> (-12.4469, -33.6461)
  point P0 (0, 11.4028)
extrude "Extrusion8" cut sketch "Sketch10" against normal blind 0.5
properties part number "Hotend mount"
